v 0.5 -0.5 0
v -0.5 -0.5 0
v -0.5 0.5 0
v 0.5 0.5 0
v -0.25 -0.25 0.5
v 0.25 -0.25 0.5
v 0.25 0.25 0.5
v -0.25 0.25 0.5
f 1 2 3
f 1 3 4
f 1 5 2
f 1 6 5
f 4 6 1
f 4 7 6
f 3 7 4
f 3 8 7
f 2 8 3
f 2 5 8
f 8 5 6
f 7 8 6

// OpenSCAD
// Frustum (Square) for Stacks of Shapes
// by Slashee the Cow

$fn = 128;

color("MediumVioletRed")
linear_extrude(0.5, scale = 0.5)
    square(1, center = true);
